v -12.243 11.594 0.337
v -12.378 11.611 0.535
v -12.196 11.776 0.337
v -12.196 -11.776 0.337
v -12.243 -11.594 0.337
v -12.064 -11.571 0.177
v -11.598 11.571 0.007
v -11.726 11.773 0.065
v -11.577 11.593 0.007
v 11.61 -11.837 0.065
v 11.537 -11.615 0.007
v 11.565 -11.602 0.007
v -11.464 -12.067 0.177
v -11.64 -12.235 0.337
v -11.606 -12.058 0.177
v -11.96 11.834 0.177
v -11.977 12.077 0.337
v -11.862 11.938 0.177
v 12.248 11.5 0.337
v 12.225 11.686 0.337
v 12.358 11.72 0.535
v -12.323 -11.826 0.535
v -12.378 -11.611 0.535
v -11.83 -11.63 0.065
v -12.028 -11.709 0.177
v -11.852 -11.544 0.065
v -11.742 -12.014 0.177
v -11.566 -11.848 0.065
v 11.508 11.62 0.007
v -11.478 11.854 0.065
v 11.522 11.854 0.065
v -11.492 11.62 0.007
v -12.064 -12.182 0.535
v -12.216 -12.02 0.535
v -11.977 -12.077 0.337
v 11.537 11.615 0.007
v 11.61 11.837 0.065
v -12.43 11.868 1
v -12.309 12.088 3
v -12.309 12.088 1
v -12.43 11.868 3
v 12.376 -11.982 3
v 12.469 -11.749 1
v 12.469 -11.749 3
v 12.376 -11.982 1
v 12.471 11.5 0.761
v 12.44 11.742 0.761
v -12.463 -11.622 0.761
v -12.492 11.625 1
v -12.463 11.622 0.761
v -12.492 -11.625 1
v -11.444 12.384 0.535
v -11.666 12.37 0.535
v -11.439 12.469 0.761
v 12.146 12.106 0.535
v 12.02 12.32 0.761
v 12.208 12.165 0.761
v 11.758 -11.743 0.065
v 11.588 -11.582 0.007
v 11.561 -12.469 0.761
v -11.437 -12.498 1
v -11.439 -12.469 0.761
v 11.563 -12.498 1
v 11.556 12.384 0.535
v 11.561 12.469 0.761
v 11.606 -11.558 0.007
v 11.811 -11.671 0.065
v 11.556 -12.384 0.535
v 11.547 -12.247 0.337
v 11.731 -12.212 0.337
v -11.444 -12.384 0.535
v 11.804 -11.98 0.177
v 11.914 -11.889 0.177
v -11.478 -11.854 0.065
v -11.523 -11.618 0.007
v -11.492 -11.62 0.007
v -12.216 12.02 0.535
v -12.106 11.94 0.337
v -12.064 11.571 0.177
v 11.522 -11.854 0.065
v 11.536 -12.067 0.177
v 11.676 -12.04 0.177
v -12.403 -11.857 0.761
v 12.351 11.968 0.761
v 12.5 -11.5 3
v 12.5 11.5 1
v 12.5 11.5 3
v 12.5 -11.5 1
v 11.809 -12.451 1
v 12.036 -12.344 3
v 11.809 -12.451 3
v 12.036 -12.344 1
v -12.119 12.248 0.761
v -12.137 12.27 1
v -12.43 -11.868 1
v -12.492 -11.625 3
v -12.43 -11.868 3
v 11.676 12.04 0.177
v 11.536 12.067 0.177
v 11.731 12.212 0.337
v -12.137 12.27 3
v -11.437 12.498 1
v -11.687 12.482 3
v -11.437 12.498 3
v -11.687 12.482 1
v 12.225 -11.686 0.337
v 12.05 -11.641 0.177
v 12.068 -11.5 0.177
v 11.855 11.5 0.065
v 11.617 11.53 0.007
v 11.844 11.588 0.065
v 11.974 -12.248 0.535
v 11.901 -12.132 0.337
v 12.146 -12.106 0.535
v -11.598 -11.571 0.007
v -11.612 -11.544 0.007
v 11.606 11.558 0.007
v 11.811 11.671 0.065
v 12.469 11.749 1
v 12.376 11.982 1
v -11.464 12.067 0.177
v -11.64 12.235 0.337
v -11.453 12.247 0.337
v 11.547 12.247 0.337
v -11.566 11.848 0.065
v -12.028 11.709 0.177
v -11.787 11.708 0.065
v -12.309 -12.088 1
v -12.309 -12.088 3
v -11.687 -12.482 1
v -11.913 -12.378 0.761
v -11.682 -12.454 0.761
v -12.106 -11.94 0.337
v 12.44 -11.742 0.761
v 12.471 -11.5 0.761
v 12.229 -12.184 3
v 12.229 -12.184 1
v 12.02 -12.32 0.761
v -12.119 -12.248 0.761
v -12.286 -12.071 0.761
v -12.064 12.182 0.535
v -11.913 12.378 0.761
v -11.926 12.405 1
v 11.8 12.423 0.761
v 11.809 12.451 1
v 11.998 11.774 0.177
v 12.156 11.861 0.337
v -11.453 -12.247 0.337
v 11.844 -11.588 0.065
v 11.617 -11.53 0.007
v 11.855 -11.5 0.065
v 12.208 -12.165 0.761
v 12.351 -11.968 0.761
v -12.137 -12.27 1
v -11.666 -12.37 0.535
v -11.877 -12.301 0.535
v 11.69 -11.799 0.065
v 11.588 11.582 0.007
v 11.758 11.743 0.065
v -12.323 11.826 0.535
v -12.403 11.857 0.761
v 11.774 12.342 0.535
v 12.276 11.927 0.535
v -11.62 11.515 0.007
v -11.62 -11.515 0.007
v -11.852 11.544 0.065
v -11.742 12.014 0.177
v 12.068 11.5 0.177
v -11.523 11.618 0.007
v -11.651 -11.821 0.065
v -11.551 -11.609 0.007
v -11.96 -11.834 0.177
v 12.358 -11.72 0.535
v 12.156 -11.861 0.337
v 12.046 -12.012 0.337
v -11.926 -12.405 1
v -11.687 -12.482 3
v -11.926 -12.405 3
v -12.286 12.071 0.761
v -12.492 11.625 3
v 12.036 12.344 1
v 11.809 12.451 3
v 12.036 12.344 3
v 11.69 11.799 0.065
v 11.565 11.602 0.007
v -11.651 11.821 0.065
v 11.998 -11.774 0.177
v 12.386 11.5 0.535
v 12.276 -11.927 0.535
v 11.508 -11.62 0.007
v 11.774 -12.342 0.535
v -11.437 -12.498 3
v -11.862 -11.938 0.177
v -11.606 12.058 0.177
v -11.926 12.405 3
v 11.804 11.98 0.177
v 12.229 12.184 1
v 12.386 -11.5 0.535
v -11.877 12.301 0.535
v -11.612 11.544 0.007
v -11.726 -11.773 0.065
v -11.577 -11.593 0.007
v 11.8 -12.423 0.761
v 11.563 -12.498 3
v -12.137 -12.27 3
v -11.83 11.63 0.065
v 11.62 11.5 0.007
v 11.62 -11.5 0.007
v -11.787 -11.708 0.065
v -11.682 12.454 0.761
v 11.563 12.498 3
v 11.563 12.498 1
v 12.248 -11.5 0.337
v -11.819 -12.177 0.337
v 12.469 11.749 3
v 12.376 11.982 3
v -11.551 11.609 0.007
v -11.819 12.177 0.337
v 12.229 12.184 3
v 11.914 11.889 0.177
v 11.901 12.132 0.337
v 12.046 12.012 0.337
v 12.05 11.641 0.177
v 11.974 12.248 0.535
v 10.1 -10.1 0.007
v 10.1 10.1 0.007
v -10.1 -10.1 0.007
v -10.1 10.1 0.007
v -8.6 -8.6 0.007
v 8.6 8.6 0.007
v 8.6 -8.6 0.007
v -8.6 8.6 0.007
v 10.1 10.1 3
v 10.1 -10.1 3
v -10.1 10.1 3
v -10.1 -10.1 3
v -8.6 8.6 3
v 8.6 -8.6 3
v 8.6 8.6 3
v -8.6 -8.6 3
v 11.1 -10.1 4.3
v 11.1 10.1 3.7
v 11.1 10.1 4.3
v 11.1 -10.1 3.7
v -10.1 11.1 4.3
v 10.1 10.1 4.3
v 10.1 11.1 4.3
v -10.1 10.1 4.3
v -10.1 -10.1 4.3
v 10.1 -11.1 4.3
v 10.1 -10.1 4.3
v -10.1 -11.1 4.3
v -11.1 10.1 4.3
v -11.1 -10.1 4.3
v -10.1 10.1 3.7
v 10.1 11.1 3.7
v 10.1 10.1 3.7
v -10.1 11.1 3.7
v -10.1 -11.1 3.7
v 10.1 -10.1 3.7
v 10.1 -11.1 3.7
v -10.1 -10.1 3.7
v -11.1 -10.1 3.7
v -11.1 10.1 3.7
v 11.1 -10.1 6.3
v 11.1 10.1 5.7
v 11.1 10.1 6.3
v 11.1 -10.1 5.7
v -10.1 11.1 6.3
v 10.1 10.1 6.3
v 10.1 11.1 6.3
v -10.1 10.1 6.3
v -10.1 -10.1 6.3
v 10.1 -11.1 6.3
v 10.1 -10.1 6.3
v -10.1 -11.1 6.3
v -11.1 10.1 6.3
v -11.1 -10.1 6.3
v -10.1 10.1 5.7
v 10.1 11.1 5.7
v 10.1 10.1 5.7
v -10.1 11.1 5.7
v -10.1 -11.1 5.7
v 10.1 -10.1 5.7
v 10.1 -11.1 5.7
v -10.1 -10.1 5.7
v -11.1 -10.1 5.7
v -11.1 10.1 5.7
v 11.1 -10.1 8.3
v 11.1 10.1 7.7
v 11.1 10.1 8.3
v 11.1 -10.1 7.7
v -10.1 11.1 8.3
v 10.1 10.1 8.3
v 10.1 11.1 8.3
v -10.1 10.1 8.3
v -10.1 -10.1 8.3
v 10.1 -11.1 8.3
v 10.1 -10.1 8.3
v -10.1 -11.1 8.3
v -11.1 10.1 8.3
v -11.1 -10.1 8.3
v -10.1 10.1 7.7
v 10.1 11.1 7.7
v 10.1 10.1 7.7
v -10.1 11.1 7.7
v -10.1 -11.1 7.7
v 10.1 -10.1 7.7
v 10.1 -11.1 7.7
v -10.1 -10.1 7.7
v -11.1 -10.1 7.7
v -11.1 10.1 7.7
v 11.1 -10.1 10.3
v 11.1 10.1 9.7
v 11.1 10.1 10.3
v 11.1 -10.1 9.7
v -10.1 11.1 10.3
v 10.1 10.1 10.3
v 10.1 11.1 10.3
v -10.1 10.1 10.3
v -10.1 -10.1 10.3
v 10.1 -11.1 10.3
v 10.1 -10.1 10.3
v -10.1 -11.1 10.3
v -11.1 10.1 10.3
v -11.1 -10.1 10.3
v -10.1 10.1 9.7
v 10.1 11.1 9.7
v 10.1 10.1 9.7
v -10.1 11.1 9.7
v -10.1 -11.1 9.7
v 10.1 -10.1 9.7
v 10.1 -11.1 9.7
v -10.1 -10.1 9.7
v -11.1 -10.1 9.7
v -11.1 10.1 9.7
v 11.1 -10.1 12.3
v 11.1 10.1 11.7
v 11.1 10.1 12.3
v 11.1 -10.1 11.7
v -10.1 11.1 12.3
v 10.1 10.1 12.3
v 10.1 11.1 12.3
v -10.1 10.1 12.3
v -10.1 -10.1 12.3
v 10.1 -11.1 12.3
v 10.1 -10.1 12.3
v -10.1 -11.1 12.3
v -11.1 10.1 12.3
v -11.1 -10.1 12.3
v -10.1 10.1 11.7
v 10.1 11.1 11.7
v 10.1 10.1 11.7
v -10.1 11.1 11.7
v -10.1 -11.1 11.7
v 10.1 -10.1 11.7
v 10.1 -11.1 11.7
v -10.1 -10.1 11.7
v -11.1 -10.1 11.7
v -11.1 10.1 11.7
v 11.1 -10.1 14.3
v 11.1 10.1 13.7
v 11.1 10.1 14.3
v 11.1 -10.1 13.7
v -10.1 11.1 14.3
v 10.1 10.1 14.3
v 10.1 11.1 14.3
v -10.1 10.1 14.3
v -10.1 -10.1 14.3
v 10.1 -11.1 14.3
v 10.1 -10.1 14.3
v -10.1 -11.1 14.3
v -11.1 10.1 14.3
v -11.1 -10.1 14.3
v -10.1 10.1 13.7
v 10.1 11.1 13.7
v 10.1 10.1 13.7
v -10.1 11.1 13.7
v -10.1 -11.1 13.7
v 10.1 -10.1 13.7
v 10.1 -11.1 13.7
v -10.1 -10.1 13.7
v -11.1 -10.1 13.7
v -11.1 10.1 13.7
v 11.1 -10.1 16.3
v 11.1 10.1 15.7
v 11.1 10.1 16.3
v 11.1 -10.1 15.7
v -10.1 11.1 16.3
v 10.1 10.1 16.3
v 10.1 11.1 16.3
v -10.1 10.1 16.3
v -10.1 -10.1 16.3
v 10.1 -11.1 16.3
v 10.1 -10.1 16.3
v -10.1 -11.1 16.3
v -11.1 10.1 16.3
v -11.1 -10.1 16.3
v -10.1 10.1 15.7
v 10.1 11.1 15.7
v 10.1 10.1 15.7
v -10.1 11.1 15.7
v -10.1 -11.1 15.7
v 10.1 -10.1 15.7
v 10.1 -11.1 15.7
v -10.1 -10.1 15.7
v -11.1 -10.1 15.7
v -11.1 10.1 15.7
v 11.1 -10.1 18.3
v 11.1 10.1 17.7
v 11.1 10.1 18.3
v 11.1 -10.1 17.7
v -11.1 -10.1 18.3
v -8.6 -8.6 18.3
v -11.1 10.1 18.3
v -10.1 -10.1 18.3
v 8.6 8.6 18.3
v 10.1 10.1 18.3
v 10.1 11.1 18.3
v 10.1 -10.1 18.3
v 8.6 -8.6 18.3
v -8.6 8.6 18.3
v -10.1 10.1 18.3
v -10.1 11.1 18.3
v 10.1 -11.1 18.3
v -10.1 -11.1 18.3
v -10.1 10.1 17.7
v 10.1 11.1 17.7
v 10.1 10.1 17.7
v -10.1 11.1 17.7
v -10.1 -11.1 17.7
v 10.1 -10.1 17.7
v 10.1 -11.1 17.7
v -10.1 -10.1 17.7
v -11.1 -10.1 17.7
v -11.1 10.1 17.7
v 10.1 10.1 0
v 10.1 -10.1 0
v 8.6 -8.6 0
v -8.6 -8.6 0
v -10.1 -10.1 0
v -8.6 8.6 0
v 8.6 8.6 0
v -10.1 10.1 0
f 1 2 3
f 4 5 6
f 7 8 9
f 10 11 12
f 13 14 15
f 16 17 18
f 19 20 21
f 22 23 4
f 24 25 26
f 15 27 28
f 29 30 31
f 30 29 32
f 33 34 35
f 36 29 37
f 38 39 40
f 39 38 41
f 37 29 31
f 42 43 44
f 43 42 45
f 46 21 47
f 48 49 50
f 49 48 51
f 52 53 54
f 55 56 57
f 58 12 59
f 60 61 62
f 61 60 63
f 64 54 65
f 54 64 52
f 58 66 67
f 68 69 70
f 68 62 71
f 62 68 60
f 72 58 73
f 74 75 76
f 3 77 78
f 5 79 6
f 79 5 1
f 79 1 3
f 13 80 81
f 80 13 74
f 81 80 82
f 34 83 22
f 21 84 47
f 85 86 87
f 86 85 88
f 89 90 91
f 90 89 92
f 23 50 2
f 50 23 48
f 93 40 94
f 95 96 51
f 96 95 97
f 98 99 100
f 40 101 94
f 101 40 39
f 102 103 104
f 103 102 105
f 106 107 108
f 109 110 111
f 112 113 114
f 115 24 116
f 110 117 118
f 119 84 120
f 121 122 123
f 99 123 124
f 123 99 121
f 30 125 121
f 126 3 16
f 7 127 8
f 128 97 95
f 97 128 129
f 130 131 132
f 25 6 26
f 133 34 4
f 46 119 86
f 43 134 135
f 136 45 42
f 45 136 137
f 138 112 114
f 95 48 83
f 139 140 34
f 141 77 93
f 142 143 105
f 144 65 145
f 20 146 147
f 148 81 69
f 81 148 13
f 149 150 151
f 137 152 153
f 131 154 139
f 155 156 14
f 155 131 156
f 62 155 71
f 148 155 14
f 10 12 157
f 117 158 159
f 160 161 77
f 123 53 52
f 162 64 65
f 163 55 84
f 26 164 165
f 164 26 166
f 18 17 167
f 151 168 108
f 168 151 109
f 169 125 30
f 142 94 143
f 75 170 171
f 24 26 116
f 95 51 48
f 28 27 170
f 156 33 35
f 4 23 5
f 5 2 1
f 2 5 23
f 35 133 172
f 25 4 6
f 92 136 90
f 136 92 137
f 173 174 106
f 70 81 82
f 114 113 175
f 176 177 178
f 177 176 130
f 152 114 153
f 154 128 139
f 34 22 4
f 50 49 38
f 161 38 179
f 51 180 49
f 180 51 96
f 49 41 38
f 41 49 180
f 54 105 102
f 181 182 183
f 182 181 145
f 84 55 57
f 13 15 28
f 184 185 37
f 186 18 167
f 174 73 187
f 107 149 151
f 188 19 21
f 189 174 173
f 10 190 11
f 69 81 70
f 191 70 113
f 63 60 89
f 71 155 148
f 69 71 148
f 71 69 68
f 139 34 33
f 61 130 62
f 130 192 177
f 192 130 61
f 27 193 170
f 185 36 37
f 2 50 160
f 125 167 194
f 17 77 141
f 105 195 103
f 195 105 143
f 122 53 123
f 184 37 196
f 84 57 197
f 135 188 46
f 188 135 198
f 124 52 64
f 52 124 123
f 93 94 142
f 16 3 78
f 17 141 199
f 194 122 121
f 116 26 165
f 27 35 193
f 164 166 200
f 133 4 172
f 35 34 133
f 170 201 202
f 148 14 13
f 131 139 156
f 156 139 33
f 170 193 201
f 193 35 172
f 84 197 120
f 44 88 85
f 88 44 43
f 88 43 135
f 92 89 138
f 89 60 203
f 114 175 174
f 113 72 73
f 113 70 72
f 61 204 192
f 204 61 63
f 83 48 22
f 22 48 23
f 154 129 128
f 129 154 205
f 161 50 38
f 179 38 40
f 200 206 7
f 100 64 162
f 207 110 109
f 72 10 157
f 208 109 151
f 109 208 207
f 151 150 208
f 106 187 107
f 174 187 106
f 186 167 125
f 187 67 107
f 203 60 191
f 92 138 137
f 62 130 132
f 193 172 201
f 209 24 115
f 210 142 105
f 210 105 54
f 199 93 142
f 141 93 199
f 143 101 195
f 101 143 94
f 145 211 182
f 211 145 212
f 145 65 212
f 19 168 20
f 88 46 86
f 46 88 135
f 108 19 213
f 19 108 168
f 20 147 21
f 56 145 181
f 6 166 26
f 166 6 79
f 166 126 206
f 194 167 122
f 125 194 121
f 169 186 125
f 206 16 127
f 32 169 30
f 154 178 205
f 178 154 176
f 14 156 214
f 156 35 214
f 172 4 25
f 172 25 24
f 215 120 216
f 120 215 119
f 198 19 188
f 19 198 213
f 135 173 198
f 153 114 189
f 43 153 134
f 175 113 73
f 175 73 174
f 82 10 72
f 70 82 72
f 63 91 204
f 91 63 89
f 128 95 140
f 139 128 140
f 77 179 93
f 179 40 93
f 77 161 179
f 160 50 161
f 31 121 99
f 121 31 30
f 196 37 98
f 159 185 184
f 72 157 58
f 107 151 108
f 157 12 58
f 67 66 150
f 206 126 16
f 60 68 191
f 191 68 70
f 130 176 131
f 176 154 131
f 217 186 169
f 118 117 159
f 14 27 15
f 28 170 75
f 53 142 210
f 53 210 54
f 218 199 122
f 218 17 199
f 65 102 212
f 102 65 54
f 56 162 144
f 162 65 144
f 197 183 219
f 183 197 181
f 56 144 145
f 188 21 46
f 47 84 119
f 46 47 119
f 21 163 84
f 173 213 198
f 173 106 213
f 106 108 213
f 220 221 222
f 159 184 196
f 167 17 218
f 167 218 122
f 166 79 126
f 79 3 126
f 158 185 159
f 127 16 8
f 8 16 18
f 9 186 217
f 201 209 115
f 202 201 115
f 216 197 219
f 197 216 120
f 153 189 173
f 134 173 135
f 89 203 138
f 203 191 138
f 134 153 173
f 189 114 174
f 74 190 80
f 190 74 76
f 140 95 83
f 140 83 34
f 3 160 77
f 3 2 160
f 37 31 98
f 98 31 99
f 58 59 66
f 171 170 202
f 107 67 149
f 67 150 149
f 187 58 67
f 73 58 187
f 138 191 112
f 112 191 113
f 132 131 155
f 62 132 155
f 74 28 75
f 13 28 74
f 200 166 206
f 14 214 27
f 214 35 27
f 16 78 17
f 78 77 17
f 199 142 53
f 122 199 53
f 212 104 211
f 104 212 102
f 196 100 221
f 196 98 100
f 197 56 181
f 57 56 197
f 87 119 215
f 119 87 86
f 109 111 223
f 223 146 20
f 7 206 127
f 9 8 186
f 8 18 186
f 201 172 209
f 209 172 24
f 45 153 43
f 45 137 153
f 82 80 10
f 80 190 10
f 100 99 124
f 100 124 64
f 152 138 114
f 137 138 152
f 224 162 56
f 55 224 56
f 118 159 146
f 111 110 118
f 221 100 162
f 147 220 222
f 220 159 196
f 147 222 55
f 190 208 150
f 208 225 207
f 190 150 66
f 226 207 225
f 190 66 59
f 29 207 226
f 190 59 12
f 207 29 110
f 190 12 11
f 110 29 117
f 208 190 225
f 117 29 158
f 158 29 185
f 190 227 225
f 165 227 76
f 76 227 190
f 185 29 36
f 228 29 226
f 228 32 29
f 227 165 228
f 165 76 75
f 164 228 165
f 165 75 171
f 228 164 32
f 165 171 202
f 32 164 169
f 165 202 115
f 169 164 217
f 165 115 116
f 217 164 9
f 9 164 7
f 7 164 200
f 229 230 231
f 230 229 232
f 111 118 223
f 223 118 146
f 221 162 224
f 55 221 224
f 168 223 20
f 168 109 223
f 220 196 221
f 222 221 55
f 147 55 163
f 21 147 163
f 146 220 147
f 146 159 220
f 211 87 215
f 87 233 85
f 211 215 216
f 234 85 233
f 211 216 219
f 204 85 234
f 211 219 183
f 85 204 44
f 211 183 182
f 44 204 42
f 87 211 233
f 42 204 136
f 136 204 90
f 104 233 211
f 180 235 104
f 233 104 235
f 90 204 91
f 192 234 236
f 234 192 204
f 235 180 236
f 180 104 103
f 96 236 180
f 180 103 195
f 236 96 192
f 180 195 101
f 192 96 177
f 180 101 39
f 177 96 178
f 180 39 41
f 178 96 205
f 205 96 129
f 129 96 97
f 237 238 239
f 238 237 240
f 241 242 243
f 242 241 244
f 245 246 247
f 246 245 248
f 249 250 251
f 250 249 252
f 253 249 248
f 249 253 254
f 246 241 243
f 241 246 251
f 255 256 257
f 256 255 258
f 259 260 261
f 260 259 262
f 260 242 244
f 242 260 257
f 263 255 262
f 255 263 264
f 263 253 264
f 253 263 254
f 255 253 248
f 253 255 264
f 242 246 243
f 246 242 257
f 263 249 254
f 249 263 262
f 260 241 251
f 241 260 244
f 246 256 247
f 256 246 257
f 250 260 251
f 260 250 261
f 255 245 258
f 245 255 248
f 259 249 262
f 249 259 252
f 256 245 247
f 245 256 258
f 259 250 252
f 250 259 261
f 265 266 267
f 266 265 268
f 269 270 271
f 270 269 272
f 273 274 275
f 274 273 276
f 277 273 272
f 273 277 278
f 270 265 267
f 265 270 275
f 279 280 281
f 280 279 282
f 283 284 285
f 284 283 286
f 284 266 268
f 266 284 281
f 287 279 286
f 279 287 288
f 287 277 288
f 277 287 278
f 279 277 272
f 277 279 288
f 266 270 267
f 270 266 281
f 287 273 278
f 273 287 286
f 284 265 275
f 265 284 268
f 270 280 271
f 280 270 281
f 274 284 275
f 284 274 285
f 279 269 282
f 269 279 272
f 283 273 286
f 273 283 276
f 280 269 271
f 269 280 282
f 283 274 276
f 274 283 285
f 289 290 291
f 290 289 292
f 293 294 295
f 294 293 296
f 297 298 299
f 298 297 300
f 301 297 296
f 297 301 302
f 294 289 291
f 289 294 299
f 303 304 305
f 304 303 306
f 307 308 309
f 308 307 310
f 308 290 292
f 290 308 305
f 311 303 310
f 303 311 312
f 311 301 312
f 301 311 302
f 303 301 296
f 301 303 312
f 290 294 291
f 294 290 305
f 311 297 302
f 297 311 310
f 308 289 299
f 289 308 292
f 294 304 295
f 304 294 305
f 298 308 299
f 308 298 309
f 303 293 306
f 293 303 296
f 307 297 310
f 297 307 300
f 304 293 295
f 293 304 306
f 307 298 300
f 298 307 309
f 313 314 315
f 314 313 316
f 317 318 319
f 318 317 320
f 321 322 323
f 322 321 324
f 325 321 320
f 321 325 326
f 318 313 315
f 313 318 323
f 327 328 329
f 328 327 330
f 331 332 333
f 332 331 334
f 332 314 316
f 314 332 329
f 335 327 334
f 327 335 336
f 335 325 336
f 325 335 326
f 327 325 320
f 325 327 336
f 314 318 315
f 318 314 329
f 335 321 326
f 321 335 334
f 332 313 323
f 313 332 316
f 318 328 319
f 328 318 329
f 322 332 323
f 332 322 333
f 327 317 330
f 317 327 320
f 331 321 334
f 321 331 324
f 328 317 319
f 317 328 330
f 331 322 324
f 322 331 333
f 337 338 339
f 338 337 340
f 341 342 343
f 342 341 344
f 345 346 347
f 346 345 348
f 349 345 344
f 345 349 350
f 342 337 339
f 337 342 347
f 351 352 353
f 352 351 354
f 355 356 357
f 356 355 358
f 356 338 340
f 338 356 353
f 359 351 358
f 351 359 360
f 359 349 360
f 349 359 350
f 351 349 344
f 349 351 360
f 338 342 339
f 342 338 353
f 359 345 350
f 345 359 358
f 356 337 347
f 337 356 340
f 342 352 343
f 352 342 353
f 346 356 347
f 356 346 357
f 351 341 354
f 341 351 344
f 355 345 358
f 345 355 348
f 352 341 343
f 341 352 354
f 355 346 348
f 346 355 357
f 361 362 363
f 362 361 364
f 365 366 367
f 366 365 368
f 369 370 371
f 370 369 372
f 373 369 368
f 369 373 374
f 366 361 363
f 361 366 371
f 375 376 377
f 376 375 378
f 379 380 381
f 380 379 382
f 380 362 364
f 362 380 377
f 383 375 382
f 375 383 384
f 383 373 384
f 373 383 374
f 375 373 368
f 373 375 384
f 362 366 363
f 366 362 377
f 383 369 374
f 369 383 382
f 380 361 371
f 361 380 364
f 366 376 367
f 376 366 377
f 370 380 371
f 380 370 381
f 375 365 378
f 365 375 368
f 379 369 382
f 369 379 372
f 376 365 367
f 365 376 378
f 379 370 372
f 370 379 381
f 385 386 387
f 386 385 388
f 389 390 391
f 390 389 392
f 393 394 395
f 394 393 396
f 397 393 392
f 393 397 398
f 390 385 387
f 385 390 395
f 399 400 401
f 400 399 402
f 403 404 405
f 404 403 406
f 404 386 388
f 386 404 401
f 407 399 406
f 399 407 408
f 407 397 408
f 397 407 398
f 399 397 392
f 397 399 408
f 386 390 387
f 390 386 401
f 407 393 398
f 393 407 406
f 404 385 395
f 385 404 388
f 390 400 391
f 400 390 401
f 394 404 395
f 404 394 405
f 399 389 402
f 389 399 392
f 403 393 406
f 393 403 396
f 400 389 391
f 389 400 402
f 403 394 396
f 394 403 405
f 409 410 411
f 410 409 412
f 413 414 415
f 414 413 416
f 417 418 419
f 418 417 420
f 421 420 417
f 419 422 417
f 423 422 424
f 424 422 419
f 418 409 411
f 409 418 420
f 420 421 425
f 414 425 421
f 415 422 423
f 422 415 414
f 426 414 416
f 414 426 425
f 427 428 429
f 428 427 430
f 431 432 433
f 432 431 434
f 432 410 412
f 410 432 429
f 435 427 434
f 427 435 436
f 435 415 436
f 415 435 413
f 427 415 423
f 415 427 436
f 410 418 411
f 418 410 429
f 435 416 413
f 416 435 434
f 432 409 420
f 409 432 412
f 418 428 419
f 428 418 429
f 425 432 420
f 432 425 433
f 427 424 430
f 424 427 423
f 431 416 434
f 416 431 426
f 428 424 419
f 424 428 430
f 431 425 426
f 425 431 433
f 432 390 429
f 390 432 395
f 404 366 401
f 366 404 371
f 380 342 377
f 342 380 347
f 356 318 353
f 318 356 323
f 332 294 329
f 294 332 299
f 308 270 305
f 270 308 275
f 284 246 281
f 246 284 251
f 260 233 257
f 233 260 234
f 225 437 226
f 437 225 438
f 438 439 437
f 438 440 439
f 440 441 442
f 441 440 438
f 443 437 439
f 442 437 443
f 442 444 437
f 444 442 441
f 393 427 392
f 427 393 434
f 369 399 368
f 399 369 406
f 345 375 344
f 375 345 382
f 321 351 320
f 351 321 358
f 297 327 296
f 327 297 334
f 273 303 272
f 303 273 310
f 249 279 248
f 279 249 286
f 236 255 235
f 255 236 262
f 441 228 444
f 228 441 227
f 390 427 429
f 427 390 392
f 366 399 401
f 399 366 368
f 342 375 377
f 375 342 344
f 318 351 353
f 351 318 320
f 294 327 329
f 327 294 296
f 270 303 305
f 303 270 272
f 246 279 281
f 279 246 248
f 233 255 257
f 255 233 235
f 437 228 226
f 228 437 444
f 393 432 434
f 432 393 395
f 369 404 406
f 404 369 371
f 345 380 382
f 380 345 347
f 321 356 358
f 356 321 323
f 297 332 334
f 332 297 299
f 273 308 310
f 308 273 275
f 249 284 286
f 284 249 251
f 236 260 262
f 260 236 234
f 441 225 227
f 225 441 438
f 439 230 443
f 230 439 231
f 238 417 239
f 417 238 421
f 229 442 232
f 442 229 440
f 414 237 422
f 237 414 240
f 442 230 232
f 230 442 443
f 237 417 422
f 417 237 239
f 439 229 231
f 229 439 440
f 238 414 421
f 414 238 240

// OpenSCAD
in=22.2;
out=25;

difference() {
    minkowski() {
        translate([0,0,2])
            cube([out-2, out-2, 2], center=true);
        sphere(1, $fn=25);
    }
    translate([0,0,5])
        cube([out, out, 4], center=true);
}

difference() {
    union() {
        translate([0, 0, 9])
            cube([in-2, in-2, 18], center=true);

        for (i = [2:9]) {
            translate([0, 0, 2*i])
                cube([in,   in-2, .6], center=true);
            translate([0, 0, 2*i])
                cube([in-2, in,   .6], center=true);
        }
    }
    cube([in-5, in-5, 60], center=true);
}
